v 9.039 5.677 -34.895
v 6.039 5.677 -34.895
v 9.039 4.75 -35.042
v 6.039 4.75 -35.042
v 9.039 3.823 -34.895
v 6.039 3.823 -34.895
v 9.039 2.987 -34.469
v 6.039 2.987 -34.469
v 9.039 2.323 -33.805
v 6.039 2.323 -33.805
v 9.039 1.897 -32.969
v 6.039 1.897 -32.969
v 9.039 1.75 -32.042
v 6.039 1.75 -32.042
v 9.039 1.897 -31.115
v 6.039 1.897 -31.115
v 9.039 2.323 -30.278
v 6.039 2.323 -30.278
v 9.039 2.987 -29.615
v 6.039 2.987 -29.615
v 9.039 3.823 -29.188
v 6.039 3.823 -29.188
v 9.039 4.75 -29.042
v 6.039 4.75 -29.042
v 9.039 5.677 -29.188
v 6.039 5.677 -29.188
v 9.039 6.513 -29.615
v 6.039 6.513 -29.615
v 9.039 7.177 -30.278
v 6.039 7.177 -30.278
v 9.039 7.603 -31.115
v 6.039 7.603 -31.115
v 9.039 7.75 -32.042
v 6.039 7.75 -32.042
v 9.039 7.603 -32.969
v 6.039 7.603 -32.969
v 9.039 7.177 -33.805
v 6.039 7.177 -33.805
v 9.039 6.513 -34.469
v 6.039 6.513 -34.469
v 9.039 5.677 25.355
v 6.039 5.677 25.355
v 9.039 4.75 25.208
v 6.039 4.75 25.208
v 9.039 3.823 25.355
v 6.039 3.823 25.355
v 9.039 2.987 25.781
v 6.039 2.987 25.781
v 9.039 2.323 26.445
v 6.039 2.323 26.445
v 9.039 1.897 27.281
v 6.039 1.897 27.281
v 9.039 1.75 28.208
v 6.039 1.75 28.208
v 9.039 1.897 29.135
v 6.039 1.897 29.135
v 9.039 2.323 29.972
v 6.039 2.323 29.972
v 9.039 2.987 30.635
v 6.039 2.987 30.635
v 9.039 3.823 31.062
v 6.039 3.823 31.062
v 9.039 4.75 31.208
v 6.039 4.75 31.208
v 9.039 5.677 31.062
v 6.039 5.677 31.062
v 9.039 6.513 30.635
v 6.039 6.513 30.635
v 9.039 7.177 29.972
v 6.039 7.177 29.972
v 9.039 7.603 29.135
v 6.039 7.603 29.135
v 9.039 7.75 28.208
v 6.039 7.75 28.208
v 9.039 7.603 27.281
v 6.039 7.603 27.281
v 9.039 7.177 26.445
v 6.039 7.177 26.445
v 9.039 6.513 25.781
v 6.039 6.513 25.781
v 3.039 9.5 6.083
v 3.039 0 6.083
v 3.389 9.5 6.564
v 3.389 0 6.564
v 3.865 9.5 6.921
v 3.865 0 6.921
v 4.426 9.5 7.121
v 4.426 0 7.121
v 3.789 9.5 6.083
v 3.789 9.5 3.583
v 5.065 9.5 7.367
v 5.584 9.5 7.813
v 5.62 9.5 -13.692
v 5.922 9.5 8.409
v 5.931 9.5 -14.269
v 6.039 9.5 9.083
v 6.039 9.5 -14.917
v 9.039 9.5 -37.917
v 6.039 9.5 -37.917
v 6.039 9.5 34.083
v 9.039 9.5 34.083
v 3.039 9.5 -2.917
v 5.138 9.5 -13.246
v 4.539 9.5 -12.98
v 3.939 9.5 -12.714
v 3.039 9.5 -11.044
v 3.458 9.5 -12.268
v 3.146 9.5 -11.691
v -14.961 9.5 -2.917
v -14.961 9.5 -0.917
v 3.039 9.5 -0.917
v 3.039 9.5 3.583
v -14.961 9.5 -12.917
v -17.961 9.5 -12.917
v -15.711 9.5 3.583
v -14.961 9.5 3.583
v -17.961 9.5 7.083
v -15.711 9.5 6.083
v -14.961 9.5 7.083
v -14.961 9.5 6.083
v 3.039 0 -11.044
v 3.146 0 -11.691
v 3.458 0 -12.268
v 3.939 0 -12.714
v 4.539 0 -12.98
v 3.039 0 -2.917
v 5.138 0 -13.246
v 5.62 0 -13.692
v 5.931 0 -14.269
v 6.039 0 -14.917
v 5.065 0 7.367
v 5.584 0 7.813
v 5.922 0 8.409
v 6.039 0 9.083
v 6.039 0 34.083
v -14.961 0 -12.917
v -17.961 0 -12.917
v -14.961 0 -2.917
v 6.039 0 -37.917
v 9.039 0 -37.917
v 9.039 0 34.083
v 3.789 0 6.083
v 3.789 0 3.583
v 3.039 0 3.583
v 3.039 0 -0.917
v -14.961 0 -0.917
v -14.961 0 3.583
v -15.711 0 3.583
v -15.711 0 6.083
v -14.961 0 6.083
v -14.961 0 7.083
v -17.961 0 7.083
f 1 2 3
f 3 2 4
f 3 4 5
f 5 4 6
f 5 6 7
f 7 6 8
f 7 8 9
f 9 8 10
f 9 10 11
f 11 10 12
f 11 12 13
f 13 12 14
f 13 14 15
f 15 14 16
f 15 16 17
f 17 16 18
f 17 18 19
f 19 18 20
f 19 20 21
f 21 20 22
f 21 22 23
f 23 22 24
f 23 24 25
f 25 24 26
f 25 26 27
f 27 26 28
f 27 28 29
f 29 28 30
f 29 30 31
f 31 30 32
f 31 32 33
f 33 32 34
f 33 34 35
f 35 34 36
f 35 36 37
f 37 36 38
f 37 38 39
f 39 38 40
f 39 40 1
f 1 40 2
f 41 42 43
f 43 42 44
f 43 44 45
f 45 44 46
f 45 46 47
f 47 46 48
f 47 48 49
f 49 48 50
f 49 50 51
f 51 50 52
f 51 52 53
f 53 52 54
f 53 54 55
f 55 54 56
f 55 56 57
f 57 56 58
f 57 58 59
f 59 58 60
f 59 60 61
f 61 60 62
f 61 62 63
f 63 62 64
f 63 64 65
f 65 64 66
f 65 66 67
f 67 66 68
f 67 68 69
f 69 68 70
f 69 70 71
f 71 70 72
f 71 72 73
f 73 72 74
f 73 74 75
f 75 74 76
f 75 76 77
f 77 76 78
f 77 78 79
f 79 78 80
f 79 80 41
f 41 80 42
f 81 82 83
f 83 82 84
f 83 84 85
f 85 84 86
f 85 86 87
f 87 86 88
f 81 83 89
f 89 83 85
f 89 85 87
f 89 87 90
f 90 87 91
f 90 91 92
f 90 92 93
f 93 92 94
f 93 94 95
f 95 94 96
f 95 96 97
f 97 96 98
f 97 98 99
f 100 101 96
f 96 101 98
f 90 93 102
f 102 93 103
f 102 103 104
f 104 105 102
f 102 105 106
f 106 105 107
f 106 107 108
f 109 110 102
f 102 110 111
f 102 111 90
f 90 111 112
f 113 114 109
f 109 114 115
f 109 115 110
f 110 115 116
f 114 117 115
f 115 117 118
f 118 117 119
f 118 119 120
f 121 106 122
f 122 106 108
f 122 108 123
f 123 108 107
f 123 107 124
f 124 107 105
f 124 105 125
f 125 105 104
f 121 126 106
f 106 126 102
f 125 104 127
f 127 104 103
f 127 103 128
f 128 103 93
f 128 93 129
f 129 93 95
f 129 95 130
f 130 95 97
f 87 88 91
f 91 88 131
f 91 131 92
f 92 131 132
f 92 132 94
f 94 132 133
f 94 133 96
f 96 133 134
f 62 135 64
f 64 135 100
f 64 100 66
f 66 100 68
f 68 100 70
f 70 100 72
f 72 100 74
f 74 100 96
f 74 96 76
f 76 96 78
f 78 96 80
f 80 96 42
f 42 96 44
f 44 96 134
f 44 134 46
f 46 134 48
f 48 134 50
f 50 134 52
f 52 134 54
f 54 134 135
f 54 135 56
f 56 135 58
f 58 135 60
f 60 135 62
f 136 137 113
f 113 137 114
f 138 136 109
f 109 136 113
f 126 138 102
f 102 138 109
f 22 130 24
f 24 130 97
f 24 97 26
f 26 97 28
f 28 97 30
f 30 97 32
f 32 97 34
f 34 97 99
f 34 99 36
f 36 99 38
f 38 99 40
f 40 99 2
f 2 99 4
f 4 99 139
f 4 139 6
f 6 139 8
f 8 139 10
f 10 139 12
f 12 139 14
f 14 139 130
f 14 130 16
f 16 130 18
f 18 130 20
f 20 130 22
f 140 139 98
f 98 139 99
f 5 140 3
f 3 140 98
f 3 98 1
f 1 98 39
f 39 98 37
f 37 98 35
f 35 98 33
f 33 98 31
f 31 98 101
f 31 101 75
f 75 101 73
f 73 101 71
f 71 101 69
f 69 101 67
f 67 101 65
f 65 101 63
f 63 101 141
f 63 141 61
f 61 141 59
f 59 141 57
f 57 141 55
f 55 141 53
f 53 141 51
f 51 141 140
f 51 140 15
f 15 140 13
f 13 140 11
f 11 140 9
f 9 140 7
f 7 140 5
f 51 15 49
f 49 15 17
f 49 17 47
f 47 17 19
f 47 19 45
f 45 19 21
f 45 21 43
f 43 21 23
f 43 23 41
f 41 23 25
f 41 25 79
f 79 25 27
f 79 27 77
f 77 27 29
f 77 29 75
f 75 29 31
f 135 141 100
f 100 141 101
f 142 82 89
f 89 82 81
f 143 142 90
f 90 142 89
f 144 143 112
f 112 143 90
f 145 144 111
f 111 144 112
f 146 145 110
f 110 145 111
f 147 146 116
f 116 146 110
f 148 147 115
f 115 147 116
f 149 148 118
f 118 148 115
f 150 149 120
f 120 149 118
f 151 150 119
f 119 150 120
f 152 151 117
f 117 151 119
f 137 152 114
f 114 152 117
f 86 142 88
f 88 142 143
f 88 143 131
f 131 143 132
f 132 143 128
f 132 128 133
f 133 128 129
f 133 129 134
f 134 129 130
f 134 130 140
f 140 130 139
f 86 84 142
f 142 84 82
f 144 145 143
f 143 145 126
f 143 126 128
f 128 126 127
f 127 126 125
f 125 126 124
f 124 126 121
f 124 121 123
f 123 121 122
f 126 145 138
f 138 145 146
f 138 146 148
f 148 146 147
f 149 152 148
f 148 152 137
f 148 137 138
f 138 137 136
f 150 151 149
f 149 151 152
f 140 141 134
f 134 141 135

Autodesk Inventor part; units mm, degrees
ref_plane "YZ Plane" through (0, 0, 0) normal (1, 0, 0) x (0, 1, 0)
ref_plane "XZ Plane" through (0, 0, 0) normal (0, 1, 0) x (-1, 0, 0)
ref_plane "XY Plane" through (0, 0, 0) normal (0, 0, 1) x (1, 0, 0)
sketch "Sketch1" plane through (0, 0, 0) normal (0, 1, 0) x (-1, 0, 0)
  line L0 (-3.0388, 7.0833) -> (-6.0388, 7.0833)
  line L1 (-6.0388, 7.0833) -> (-6.0388, -12.9167)
  line L2 (-6.0388, -12.9167) -> (-3.0388, -12.9167)
  line L3 (-3.0388, -12.9167) -> (-3.0388, -2.9167)
  line L4 (-3.0388, -2.9167) -> (14.9612, -2.9167)
  line L5 (14.9612, -12.9167) -> (17.9612, -12.9167)
  line L6 (17.9612, -12.9167) -> (17.9612, 7.0833)
  line L7 (17.9612, 7.0833) -> (14.9612, 7.0833)
  line L8 (14.9612, 7.0833) -> (14.9612, 6.0833)
  line L9 (14.9612, 6.0833) -> (15.7112, 6.0833)
  line L10 (15.7112, 6.0833) -> (15.7112, 3.5833)
  line L11 (15.7112, 3.5833) -> (14.9612, 3.5833)
  line L12 (14.9612, 3.5833) -> (14.9612, -0.9167)
  line L13 (14.9612, -0.9167) -> (-3.0388, -0.9167)
  line L14 (-3.0388, -0.9167) -> (-3.0388, 3.5833)
  line L15 (-3.7888, 3.5833) -> (-3.7888, 6.0833)
  line L16 (-3.7888, 6.0833) -> (-3.0388, 6.0833)
  line L17 (-3.0388, 3.5833) -> (-3.7888, 3.5833)
  line L18 (-3.0388, 6.0833) -> (-3.0388, 7.0833)
  line L19 (14.9612, -12.9167) -> (14.9612, -2.9167)
  line L20 (-6.0388, 7.0833) -> (-6.0388, 34.0833)
  line L21 (-6.0388, 34.0833) -> (-9.0388, 34.0833)
  line L22 (-9.0388, 34.0833) -> (-9.0388, -37.9167)
  line L23 (-9.0388, -37.9167) -> (-6.0388, -37.9167)
  line L24 (-6.0388, -37.9167) -> (-6.0388, -12.9167)
  point P0 (0, 0)
  point P1 (14.9612, 1.3333)
  dimension "d0" = 2.5
  dimension "d1" = 3
  dimension "d2" = 3
  dimension "d3" = 10
  dimension "d4" = 10
  dimension "d5" = 2
  dimension "d6" = 3
  dimension "d8" = 1
  dimension "d9" = 8
  dimension "d11" = 0.75
  dimension "d12" = 0.75
  dimension "d13" = 3
  dimension "d16" = 18
  dimension "d17" = 3
  dimension "d18" = 72
  dimension "d19" = 35
extrude "Extrusion1" add sketch "Sketch1" along normal blind 9.5
fillet "Fillet1" radius 2 4 edges at (6.0388, 4.75, 7.0833) (6.0388, 4.75, -12.9167) (3.0388, 4.75, -12.9167) (3.0388, 4.75, 7.0833)
sketch "Sketch2" plane through (6.0388, 0, 34.0833) normal (-1, 0, 0) x (0, 0, 1)
  circle A0 centre (-5.875, 4.75) radius 3
  circle A1 centre (-66.125, 4.75) radius 3
  line L0 (-72, 0) -> (-49, 0) projected
  line L1 (-72, 9.5) -> (-49, 9.5) projected
  line L2 (-25, 9.5) -> (0, 9.5) projected
  line L3 (0, 0) -> (0, 9.5) projected
  line L4 (-72, 0) -> (-72, 9.5) projected
  point P0 (-34.0833, 0)
  dimension "d21" = 6
  dimension "d22" = 6
  dimension "d23" = 9.5
  dimension "d24" = 4.75
  dimension "d25" = 4.75
  dimension "d26" = 60.25
  dimension "d27" = 72
  dimension "d28" = 5.875
extrude "Extrusion2" cut sketch "Sketch2" against normal through all
equation "\"d2\" = d1"
equation "\"d4\" = d3"
equation "\"d6\" = d2"
equation "\"d12\" = d11"
equation "\"d13\" = d1"
equation "\"d19\" = -0.5 * d5 + 0.5 * d18"
equation "\"d24\" = 0.5 * d23"
equation "\"d25\" = 0.5 * d23"
equation "\"d28\" = -0.5 * d26 + 0.5 * d27"
properties part number "CO-1-02-stepperControllerMount"
